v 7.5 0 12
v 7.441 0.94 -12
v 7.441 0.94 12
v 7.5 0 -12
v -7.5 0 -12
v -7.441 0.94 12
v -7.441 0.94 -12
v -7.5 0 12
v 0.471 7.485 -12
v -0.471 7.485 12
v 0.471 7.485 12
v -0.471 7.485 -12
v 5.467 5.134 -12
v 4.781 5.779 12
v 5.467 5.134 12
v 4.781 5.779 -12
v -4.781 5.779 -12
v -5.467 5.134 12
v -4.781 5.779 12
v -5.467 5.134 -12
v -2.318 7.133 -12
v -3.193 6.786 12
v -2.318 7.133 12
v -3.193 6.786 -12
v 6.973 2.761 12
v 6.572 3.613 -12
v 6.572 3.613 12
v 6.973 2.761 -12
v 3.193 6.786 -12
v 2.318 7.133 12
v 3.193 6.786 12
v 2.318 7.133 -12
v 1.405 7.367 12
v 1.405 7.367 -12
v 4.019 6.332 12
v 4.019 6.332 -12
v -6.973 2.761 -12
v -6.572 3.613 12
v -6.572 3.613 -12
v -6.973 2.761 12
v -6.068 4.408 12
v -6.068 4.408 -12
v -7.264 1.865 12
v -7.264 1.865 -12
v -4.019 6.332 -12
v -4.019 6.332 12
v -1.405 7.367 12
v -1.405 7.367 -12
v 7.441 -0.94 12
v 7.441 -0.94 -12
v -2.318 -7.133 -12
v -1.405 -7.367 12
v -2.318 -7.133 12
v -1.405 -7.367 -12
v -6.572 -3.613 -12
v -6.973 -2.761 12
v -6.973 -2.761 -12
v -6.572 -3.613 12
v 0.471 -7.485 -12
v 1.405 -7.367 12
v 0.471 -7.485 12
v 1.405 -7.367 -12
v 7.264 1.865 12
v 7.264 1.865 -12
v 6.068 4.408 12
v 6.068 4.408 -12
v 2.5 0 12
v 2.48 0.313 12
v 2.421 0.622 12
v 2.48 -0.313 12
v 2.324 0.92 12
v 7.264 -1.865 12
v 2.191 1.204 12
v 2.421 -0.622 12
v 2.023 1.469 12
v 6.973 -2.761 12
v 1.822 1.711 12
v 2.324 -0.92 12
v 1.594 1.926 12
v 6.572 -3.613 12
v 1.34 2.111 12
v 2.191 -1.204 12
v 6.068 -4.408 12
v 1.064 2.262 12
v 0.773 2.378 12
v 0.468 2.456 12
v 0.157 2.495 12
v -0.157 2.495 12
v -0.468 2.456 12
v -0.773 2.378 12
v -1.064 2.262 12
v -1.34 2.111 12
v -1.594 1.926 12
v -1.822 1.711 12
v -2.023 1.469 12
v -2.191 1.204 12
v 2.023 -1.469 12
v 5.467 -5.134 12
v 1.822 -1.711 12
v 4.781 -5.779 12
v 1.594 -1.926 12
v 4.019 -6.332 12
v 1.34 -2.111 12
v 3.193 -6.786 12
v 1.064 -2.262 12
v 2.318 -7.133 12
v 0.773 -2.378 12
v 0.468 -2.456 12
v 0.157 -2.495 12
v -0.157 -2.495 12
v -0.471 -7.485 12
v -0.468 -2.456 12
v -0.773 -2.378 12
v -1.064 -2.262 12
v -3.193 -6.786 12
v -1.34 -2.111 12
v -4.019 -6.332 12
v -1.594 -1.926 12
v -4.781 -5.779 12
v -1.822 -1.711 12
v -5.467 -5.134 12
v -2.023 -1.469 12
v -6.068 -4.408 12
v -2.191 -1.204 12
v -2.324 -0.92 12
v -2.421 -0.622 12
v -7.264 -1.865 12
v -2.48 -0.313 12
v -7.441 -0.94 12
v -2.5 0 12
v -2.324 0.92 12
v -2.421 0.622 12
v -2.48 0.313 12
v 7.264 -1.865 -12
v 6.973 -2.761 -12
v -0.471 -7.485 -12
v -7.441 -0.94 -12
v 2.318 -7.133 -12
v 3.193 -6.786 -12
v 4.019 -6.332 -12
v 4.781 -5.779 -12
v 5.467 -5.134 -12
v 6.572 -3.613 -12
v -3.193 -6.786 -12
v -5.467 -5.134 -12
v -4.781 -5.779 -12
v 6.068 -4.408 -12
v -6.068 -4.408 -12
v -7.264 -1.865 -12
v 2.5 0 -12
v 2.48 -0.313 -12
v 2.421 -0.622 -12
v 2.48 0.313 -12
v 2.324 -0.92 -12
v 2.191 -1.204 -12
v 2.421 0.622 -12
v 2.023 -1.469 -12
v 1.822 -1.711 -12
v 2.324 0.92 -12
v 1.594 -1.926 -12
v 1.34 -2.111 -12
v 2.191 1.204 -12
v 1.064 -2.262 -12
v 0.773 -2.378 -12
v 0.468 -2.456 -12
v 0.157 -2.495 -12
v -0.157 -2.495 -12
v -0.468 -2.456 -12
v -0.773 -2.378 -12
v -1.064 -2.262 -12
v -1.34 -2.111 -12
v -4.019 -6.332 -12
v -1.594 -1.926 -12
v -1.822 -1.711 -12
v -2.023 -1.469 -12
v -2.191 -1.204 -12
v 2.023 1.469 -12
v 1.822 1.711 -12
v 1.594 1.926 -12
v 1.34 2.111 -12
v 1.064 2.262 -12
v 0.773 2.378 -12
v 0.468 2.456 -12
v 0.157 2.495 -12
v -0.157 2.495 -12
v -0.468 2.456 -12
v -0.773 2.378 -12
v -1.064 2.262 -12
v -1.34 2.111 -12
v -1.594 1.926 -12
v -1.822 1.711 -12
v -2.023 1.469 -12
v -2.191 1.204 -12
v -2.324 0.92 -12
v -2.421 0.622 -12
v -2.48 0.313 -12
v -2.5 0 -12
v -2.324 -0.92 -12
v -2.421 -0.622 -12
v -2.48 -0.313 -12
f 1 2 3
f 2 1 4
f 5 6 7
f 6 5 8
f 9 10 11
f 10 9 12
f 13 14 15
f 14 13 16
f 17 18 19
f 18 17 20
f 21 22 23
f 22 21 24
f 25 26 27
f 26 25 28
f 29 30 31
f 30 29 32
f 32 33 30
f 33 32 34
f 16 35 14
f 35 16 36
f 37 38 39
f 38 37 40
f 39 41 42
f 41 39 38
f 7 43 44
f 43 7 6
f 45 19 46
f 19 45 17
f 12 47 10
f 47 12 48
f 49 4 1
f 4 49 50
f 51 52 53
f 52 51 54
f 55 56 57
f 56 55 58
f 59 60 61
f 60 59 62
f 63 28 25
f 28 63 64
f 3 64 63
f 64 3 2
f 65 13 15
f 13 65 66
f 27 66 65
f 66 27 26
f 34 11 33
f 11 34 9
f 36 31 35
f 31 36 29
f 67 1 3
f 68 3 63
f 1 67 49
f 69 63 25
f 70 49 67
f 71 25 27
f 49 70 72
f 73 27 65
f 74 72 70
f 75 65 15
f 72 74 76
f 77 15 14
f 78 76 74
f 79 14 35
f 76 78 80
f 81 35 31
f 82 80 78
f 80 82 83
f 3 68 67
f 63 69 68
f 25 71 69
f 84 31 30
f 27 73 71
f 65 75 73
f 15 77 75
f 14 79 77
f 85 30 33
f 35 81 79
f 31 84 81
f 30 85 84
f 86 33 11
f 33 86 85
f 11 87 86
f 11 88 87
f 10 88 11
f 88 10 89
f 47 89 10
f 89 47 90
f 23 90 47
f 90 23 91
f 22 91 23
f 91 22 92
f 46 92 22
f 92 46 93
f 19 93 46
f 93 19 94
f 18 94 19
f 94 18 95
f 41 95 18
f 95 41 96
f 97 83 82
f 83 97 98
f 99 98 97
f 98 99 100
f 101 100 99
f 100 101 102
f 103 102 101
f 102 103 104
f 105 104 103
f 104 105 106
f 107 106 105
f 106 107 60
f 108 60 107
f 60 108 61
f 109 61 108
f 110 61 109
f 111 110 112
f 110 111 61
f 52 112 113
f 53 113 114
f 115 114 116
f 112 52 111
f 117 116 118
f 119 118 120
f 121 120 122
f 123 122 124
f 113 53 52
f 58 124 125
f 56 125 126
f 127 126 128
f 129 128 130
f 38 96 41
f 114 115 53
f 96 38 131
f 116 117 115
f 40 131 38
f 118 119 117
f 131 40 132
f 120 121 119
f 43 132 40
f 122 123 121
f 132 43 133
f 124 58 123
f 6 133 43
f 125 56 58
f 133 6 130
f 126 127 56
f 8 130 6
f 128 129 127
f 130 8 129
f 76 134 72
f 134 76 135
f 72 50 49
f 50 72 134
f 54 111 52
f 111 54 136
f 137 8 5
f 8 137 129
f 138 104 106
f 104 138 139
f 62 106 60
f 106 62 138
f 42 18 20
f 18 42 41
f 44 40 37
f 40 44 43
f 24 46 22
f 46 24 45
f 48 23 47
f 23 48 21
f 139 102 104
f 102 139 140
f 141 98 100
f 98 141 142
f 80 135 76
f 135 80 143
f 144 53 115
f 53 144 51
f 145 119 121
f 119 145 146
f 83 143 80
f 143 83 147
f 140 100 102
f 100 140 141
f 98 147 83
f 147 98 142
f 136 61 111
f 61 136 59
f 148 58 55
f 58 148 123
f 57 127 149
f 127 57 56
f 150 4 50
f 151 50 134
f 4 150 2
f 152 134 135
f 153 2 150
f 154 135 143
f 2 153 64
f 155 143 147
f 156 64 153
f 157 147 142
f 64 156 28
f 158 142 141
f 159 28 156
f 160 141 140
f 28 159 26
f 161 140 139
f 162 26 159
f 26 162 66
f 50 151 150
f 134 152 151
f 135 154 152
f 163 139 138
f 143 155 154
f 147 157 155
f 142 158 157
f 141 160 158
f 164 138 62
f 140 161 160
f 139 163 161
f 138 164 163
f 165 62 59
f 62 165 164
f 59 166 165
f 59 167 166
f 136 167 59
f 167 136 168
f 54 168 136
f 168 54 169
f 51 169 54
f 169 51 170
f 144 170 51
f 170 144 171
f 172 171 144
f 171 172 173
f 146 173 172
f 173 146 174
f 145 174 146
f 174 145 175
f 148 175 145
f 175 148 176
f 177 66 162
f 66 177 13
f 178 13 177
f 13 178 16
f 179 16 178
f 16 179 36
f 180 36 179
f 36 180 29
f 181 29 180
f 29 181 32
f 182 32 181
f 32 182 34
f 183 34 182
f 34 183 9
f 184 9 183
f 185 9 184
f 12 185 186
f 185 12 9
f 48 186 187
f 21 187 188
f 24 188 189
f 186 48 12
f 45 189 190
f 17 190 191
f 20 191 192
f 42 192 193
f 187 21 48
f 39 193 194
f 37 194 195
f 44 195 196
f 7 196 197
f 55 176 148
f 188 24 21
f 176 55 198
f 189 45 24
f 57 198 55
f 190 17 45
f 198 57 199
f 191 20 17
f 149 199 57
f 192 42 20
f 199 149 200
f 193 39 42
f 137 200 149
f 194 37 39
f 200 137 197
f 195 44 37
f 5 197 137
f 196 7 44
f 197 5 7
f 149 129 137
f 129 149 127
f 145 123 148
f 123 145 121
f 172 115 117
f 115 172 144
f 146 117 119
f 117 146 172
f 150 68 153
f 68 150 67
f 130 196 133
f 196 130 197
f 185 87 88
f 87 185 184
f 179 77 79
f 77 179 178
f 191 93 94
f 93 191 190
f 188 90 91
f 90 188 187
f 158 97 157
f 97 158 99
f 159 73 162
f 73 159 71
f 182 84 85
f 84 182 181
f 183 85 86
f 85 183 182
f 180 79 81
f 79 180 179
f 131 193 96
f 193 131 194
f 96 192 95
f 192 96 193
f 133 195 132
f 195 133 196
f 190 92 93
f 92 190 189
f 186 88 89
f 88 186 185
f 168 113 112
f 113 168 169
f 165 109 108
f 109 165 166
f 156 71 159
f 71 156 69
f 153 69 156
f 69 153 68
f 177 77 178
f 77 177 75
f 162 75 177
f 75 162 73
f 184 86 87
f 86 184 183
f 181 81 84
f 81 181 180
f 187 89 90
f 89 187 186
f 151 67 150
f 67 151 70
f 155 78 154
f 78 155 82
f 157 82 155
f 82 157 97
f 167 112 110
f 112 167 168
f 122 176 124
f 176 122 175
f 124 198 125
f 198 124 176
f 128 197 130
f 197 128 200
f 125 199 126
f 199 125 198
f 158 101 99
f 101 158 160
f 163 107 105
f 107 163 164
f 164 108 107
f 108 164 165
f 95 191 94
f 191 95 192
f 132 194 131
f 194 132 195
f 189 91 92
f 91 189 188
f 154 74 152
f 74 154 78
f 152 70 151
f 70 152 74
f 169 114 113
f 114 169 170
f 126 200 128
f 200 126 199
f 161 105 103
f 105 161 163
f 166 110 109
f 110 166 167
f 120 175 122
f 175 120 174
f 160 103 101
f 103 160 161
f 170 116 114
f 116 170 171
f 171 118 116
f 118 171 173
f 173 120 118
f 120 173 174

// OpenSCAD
$fn = 50;


difference() {
	union() {
		translate(v = [0, 0, -12.0000000000]) {
			cylinder(h = 24, r = 7.5000000000);
		}
	}
	union() {
		translate(v = [0, 0, -100.0000000000]) {
			cylinder(h = 200, r = 2.5000000000);
		}
	}
}
